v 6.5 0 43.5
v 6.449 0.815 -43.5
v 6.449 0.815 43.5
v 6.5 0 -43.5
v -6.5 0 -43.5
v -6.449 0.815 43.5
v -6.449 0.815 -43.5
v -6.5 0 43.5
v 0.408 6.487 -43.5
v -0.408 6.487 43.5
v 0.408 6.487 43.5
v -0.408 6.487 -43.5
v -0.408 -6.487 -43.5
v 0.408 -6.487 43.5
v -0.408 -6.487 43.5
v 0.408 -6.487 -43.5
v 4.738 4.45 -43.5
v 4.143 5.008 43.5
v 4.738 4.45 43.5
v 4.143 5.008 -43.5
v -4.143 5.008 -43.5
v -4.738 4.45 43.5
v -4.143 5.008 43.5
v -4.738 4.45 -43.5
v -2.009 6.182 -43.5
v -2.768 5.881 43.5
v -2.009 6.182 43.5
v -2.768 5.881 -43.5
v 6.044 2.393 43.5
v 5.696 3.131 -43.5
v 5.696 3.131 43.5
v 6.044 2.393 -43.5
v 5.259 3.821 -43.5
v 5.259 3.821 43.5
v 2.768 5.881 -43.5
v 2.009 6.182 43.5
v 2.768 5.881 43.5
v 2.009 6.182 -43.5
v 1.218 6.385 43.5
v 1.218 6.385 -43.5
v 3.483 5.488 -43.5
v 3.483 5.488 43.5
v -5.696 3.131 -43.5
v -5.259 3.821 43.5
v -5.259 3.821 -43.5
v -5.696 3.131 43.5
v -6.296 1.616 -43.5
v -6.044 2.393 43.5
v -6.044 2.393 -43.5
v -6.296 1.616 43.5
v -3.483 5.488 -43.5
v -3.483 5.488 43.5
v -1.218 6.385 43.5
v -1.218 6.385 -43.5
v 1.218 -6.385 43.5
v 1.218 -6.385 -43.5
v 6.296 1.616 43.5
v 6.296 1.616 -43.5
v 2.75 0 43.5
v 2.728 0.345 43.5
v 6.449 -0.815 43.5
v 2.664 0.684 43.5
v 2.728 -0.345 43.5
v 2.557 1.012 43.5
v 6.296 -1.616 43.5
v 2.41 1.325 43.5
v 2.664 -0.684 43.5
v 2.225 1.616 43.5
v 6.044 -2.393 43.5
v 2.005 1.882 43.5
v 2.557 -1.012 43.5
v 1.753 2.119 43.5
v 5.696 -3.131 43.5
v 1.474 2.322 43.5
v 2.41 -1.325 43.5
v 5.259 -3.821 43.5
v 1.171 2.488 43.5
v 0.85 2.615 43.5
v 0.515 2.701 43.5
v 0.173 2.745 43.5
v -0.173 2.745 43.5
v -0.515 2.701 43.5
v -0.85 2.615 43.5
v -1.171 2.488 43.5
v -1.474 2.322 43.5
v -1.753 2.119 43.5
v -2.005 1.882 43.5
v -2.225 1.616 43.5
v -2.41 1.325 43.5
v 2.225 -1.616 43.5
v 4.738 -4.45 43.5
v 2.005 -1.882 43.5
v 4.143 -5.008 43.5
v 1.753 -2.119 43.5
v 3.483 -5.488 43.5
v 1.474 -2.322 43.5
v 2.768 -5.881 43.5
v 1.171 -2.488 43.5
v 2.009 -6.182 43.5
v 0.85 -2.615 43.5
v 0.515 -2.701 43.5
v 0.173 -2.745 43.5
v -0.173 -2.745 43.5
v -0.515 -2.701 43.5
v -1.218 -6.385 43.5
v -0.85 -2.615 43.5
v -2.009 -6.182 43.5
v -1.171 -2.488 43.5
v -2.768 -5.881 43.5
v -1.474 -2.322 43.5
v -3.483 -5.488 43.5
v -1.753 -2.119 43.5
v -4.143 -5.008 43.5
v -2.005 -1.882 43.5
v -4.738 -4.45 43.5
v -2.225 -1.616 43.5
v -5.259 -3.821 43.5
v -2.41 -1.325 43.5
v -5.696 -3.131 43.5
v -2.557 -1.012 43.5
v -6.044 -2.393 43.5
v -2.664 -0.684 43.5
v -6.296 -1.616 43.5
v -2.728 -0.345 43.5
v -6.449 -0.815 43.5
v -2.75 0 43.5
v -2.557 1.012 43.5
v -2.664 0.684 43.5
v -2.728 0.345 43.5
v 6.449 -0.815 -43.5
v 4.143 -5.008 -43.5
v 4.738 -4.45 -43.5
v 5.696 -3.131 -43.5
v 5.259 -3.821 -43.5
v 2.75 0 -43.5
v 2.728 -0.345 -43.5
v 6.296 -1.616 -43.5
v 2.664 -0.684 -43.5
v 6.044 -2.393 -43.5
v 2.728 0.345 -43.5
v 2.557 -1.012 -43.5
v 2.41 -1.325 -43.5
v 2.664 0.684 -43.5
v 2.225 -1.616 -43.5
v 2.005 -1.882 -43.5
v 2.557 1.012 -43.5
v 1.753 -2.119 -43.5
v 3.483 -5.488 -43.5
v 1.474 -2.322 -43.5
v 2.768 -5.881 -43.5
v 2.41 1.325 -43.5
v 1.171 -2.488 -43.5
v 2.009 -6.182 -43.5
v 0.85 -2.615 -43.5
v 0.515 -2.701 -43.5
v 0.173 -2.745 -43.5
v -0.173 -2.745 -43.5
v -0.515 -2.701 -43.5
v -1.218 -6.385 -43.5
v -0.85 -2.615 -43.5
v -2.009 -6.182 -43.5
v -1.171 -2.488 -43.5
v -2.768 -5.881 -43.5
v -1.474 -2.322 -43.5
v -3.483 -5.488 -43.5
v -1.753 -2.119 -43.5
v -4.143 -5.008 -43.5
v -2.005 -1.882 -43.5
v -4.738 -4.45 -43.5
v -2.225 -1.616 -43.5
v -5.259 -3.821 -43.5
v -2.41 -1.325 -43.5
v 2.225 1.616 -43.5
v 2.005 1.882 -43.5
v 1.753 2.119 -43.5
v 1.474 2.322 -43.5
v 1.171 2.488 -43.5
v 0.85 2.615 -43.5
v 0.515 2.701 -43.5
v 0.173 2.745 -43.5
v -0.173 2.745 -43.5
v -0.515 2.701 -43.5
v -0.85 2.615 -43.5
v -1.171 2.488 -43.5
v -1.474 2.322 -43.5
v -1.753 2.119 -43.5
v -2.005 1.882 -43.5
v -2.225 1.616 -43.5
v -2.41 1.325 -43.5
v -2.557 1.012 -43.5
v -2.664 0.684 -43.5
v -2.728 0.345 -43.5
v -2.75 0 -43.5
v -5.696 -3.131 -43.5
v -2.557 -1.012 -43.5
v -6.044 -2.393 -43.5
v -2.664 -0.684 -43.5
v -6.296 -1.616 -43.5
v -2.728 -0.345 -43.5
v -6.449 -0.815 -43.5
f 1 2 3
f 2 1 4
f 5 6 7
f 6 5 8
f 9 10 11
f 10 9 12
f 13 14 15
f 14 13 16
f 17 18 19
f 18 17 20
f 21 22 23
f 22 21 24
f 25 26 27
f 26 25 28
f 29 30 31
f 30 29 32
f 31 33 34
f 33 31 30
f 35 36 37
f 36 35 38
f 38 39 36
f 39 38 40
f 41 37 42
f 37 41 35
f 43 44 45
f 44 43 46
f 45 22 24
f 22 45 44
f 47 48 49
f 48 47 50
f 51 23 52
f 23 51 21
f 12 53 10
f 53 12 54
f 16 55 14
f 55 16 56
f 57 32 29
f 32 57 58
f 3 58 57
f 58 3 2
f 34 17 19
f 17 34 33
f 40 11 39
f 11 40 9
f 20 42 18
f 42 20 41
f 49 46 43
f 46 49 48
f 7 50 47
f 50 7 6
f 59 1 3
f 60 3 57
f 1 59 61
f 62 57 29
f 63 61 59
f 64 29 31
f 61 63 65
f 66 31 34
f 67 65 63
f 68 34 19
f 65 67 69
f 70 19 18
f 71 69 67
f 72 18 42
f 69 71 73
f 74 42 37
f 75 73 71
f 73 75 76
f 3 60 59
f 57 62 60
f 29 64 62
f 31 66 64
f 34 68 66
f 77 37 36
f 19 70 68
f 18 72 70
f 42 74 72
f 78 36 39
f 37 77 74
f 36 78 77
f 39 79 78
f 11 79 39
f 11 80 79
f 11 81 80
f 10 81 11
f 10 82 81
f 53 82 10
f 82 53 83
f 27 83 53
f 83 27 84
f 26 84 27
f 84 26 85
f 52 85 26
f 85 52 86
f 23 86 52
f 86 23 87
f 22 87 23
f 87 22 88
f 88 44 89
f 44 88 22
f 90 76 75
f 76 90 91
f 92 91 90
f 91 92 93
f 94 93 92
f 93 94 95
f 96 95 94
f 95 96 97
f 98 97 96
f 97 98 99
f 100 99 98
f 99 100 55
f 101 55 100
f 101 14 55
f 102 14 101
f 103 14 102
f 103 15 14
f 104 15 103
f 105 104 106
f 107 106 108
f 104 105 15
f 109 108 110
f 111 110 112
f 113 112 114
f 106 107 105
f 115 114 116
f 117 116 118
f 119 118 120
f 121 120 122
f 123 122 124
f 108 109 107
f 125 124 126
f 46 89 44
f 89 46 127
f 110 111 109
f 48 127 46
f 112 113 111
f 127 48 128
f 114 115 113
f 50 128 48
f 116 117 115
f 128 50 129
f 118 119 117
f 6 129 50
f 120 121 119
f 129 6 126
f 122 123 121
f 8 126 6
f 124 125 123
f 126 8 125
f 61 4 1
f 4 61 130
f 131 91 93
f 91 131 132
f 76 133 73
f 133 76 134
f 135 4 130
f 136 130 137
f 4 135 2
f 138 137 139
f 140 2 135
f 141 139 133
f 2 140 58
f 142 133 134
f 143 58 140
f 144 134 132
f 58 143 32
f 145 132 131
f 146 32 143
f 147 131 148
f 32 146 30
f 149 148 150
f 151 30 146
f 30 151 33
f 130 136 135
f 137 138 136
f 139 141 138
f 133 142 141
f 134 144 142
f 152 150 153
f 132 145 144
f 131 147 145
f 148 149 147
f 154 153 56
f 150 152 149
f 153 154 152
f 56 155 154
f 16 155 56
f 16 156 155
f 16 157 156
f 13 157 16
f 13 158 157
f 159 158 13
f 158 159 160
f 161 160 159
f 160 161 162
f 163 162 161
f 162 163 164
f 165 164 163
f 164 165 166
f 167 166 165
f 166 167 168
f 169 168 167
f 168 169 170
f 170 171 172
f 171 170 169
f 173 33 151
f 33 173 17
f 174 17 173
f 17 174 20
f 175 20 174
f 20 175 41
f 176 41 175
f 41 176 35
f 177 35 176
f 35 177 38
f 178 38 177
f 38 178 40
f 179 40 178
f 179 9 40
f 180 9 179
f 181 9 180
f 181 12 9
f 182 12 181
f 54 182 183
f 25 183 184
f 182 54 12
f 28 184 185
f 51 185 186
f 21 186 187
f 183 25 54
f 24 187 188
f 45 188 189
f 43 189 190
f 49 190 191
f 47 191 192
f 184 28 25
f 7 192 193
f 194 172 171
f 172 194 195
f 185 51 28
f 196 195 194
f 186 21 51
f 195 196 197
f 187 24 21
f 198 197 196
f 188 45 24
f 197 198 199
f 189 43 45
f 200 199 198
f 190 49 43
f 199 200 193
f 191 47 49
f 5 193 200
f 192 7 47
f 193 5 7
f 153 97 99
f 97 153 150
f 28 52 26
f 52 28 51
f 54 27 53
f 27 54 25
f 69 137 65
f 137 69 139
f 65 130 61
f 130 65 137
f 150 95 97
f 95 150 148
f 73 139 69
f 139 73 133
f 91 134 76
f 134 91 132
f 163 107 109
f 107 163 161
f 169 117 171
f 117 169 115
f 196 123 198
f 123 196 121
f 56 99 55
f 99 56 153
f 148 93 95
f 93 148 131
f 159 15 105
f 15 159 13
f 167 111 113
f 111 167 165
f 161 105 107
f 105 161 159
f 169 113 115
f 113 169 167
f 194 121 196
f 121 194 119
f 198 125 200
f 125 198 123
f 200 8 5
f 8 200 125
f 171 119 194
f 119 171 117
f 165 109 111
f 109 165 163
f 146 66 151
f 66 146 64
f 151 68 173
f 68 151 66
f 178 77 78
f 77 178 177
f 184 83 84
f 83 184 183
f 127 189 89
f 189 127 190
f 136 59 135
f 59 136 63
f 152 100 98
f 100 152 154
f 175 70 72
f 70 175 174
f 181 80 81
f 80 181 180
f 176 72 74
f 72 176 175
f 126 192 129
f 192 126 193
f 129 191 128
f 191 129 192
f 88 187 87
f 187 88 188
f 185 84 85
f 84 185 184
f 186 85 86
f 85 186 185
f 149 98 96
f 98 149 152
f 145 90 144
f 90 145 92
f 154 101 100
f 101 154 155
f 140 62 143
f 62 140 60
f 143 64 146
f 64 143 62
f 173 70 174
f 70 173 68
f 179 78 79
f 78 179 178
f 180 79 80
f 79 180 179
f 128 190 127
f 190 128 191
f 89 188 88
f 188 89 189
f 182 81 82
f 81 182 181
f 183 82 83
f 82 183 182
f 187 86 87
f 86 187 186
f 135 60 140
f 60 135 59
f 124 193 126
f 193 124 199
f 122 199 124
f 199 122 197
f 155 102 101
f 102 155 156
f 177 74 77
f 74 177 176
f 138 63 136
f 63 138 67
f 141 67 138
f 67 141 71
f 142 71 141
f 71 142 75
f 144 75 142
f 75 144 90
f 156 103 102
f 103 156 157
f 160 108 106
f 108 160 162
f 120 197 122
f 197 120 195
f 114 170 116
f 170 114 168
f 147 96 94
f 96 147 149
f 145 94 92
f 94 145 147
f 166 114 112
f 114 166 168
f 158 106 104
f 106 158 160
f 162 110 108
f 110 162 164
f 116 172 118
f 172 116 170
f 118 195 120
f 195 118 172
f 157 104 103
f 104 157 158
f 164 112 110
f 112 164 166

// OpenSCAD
$fn = 50;


difference() {
	union() {
		translate(v = [0, 0, -43.5000000000]) {
			cylinder(h = 87, r = 6.5000000000);
		}
	}
	union() {
		translate(v = [0, 0, -100.0000000000]) {
			cylinder(h = 200, r = 2.7500000000);
		}
	}
}
